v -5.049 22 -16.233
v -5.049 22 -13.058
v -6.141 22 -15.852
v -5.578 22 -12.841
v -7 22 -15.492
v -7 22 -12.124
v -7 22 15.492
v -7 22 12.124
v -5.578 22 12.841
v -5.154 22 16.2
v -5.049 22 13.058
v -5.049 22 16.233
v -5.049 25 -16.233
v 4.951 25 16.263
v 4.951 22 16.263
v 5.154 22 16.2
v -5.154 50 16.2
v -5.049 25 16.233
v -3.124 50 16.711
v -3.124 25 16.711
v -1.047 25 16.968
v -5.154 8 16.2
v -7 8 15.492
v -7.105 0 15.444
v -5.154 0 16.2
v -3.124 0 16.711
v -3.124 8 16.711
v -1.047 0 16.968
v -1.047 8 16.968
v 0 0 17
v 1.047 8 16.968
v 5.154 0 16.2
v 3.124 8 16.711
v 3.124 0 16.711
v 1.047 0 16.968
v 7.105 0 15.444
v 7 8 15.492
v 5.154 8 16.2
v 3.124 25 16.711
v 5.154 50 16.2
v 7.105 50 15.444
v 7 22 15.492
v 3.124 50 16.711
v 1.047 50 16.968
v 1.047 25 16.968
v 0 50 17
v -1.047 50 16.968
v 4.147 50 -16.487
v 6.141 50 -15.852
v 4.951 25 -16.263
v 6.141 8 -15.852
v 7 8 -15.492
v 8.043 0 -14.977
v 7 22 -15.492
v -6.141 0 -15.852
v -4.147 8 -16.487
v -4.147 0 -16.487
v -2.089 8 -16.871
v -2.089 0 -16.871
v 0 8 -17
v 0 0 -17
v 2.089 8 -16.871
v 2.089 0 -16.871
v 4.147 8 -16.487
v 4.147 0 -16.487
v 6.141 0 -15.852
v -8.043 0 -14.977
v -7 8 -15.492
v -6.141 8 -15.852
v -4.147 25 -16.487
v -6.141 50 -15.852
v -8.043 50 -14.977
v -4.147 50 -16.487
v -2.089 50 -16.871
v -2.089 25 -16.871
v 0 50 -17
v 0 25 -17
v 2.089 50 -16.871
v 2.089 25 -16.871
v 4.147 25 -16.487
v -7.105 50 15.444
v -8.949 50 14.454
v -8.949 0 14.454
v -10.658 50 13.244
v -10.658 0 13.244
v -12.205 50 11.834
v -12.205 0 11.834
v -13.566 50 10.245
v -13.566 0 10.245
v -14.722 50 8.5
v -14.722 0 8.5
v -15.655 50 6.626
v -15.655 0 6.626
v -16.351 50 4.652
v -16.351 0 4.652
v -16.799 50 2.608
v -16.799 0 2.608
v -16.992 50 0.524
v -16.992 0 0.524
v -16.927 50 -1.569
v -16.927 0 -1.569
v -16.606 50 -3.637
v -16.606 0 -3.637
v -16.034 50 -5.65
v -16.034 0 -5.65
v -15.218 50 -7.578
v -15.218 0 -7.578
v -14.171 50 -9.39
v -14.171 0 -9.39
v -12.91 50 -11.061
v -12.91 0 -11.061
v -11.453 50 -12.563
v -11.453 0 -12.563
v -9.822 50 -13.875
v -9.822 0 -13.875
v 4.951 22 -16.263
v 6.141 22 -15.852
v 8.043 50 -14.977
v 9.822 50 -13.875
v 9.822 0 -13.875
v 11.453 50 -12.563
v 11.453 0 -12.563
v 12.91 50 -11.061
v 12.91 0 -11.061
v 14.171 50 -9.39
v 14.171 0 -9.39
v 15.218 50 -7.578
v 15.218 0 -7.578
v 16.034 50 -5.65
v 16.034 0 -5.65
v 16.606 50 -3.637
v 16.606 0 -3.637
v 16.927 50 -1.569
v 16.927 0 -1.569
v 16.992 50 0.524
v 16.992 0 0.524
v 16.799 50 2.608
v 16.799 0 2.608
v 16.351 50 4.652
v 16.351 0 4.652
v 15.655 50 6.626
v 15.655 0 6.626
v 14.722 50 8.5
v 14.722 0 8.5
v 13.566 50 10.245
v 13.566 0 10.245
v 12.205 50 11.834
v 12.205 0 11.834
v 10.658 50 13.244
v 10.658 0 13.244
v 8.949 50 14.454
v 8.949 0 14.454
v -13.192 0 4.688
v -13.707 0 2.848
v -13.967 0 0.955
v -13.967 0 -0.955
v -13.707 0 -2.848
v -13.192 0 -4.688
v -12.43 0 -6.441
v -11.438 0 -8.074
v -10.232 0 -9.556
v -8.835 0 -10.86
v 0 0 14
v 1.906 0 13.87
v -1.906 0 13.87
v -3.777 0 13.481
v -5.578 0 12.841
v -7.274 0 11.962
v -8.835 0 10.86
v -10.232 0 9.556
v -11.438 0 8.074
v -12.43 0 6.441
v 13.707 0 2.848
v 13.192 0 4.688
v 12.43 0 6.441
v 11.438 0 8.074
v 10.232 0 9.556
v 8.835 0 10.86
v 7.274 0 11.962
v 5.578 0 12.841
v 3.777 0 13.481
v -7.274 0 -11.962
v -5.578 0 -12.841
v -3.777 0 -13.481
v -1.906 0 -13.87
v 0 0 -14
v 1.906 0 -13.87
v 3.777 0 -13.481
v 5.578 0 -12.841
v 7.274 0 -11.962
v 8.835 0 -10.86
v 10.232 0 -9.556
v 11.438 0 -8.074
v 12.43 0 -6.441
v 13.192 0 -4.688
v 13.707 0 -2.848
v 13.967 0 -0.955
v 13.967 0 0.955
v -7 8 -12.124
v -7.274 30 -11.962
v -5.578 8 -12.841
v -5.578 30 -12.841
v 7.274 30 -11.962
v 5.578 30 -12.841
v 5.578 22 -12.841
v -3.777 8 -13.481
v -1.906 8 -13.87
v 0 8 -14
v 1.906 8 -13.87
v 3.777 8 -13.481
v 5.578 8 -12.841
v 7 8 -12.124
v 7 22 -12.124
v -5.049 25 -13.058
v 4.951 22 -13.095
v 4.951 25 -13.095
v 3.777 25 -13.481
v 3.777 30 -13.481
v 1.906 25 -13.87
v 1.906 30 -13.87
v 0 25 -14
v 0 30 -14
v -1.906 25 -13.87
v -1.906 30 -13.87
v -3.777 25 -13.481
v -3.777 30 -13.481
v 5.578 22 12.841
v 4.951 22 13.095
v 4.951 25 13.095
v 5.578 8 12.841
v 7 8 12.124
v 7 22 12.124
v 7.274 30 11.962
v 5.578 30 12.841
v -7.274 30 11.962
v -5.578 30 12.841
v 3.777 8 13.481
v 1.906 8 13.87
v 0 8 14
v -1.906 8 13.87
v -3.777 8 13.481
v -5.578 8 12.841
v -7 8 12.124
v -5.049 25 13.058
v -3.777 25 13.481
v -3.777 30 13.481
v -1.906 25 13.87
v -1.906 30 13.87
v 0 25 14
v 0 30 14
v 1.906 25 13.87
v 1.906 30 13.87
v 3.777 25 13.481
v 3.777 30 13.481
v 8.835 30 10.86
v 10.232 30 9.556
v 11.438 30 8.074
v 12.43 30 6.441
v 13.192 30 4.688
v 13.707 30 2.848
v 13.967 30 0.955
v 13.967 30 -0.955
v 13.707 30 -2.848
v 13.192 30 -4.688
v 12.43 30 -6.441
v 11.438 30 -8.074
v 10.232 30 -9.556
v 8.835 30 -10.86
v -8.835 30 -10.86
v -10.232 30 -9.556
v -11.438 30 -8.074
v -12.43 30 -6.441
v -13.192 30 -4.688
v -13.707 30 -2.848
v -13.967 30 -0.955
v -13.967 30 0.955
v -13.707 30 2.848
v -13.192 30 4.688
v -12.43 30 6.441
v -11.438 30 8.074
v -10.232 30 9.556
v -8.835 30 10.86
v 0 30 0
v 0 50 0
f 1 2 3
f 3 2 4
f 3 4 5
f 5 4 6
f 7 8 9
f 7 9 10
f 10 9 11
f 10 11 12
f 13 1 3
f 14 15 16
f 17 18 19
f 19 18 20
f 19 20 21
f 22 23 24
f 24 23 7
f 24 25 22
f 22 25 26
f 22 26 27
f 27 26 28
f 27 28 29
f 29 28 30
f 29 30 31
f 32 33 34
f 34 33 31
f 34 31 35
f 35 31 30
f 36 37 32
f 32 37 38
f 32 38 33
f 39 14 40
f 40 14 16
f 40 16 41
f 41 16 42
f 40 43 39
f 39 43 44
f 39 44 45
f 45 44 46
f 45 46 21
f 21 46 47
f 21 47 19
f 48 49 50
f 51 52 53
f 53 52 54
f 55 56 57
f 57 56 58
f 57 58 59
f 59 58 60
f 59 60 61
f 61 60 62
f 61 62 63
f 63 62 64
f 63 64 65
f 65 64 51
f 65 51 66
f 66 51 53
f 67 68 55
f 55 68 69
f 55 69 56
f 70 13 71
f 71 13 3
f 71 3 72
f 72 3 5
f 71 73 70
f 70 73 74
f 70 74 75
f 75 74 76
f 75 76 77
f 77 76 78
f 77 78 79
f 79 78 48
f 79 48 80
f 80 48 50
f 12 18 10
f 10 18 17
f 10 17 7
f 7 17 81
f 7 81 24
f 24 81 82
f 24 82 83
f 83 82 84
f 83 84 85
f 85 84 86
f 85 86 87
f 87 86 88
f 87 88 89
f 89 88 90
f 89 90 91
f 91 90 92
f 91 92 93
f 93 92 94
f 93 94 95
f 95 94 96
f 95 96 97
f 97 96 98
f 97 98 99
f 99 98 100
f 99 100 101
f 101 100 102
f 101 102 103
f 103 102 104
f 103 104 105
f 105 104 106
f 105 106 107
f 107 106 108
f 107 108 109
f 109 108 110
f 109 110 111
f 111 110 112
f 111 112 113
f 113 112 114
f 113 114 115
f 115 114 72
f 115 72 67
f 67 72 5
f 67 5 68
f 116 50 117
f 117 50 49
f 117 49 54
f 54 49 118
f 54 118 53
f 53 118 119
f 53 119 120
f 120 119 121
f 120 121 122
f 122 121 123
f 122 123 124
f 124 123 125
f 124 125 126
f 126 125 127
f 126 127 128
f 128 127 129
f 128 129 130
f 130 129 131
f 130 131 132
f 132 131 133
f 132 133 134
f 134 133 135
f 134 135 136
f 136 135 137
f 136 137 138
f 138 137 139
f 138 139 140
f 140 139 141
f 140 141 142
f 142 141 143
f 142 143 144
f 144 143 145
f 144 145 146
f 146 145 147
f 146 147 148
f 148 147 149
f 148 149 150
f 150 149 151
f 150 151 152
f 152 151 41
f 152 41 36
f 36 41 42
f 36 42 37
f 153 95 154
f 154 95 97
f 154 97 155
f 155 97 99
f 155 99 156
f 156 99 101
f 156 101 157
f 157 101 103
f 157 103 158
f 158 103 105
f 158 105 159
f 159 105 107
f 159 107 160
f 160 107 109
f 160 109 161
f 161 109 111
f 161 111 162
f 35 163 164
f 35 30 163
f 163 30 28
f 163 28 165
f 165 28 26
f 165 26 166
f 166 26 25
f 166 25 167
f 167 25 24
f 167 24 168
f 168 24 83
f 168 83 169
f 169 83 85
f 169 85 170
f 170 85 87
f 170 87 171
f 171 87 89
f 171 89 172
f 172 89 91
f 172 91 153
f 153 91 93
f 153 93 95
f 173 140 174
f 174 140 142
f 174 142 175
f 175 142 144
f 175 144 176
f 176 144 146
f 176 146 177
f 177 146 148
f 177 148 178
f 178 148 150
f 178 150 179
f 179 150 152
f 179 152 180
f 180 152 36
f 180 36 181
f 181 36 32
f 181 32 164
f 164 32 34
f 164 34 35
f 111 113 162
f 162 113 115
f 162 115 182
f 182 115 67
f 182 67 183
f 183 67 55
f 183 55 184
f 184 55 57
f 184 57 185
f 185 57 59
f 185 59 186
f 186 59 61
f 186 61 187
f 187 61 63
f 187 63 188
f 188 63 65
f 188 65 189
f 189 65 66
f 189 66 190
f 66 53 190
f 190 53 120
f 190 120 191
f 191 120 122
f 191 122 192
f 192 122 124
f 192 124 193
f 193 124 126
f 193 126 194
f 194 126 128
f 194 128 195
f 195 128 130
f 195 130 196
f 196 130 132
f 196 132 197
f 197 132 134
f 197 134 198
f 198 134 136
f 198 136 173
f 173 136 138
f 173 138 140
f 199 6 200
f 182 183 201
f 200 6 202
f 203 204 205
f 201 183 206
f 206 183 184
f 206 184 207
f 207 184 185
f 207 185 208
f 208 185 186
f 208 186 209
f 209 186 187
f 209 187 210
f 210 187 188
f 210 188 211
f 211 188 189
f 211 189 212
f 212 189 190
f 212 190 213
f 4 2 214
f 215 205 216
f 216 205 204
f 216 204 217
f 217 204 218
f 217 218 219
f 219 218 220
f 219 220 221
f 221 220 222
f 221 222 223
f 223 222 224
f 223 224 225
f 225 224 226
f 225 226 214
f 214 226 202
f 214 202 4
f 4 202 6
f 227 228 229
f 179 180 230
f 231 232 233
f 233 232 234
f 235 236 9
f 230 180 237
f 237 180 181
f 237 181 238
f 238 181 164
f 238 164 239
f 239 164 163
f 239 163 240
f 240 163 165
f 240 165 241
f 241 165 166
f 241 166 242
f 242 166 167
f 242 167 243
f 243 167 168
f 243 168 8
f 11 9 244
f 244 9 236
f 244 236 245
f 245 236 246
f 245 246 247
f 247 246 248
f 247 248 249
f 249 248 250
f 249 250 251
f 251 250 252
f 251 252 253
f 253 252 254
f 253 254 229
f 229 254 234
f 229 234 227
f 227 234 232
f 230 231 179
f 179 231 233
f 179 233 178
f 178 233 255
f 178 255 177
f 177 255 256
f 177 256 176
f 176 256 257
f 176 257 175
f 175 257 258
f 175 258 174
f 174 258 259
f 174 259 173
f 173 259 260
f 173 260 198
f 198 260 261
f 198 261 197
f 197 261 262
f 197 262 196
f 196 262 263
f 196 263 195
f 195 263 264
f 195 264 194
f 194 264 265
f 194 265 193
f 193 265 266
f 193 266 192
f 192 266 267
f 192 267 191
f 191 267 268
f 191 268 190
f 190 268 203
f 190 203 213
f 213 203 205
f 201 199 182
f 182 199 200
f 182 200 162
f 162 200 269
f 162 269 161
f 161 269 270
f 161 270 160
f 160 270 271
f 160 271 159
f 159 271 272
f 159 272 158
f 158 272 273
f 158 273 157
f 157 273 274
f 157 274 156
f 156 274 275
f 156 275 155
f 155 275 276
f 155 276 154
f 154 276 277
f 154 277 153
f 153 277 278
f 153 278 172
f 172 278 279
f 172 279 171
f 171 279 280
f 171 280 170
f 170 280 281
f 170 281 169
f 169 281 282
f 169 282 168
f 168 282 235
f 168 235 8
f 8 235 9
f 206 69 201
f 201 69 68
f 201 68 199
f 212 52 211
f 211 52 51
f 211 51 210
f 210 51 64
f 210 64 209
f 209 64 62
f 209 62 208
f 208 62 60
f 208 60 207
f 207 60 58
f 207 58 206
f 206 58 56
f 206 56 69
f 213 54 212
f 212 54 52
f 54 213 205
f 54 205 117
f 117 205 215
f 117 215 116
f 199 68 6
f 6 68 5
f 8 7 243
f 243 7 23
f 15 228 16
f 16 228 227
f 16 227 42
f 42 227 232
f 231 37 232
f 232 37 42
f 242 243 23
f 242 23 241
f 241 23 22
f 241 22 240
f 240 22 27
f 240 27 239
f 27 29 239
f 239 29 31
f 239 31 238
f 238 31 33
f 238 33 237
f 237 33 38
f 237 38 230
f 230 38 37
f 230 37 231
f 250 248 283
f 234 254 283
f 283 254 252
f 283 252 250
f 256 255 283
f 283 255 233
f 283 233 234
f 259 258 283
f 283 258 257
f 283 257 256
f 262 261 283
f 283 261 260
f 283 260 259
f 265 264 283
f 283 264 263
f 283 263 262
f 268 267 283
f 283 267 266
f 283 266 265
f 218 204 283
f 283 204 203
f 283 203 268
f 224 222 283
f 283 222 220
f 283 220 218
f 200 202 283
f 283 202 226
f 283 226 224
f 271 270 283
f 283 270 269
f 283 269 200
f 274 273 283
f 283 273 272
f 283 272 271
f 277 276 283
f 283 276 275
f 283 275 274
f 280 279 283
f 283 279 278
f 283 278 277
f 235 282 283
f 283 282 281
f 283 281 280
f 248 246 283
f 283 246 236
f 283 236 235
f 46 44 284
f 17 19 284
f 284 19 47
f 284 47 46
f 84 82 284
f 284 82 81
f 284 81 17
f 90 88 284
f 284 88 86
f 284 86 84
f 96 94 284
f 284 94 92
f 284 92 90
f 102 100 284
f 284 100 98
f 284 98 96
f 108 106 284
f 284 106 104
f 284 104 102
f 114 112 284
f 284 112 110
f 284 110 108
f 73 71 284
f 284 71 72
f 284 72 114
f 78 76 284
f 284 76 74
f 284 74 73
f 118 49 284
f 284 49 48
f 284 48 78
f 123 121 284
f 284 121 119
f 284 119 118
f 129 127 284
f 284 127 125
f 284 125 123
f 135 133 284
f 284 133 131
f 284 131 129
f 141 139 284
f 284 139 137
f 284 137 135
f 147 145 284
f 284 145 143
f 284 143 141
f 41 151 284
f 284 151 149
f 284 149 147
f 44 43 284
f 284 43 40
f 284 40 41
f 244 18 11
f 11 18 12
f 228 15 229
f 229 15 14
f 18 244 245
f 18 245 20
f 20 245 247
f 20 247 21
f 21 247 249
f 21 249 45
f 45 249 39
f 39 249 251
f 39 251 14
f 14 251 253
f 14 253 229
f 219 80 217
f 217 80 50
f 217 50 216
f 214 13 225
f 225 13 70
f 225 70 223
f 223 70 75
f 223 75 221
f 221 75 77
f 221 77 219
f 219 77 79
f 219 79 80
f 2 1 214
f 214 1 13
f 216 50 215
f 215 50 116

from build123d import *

# Parameters (mm, degrees)
SKETCH1_R               = 17
BOSS_EXTRUDE1_DEPTH     = 30
SKETCH2_R               = 14
CUT_EXTRUDE1_DEPTH      = 30
SKETCH3_W               = 14
SKETCH3_H               = 14
CUT_EXTRUDE2_DEPTH      = 18
CUT_EXTRUDE2_DEPTH_BACK = 18
SKETCH4_R               = 17
BOSS_EXTRUDE2_DEPTH     = 20
SKETCH6_W               = 10
SKETCH6_H               = 6
CUT_EXTRUDE3_DEPTH      = 18
CUT_EXTRUDE3_DEPTH_BACK = 18


with BuildPart() as part:
    # Sketch1 → Boss-Extrude1 (new body)
    with BuildSketch(Plane(origin=(0, 0, 0), x_dir=(1, 0, 0), z_dir=(0, 1, 0))):
        Circle(SKETCH1_R)
    extrude(amount=BOSS_EXTRUDE1_DEPTH)

    # Sketch2 → Cut-Extrude1 (cut)
    with BuildSketch(Plane(origin=(0, 30, 0), x_dir=(1, 0, 0), z_dir=(0, 1, 0))):
        Circle(SKETCH2_R)
    extrude(amount=-CUT_EXTRUDE1_DEPTH, mode=Mode.SUBTRACT)

    # Sketch3 → Cut-Extrude2 (cut, two sides)
    with BuildSketch(Plane.XY) as cut_extrude2_sk:
        with Locations((0, 15)):
            Rectangle(SKETCH3_W, SKETCH3_H)
    extrude(amount=CUT_EXTRUDE2_DEPTH, mode=Mode.SUBTRACT)
    extrude(cut_extrude2_sk.sketch, amount=-CUT_EXTRUDE2_DEPTH_BACK, mode=Mode.SUBTRACT)

    # Sketch4 → Boss-Extrude2 (add)
    with BuildSketch(Plane(origin=(0, 30, 0), x_dir=(1, 0, 0), z_dir=(0, 1, 0))):
        Circle(SKETCH4_R)
    extrude(amount=BOSS_EXTRUDE2_DEPTH)

    # Sketch6 → Cut-Extrude3 (cut, two sides)
    with BuildSketch(Plane.XY) as cut_extrude3_sk:
        with Locations((-0.049003827, 22)):
            Rectangle(SKETCH6_W, SKETCH6_H)
    extrude(amount=CUT_EXTRUDE3_DEPTH, mode=Mode.SUBTRACT)
    extrude(cut_extrude3_sk.sketch, amount=-CUT_EXTRUDE3_DEPTH_BACK, mode=Mode.SUBTRACT)


solid = part.part
